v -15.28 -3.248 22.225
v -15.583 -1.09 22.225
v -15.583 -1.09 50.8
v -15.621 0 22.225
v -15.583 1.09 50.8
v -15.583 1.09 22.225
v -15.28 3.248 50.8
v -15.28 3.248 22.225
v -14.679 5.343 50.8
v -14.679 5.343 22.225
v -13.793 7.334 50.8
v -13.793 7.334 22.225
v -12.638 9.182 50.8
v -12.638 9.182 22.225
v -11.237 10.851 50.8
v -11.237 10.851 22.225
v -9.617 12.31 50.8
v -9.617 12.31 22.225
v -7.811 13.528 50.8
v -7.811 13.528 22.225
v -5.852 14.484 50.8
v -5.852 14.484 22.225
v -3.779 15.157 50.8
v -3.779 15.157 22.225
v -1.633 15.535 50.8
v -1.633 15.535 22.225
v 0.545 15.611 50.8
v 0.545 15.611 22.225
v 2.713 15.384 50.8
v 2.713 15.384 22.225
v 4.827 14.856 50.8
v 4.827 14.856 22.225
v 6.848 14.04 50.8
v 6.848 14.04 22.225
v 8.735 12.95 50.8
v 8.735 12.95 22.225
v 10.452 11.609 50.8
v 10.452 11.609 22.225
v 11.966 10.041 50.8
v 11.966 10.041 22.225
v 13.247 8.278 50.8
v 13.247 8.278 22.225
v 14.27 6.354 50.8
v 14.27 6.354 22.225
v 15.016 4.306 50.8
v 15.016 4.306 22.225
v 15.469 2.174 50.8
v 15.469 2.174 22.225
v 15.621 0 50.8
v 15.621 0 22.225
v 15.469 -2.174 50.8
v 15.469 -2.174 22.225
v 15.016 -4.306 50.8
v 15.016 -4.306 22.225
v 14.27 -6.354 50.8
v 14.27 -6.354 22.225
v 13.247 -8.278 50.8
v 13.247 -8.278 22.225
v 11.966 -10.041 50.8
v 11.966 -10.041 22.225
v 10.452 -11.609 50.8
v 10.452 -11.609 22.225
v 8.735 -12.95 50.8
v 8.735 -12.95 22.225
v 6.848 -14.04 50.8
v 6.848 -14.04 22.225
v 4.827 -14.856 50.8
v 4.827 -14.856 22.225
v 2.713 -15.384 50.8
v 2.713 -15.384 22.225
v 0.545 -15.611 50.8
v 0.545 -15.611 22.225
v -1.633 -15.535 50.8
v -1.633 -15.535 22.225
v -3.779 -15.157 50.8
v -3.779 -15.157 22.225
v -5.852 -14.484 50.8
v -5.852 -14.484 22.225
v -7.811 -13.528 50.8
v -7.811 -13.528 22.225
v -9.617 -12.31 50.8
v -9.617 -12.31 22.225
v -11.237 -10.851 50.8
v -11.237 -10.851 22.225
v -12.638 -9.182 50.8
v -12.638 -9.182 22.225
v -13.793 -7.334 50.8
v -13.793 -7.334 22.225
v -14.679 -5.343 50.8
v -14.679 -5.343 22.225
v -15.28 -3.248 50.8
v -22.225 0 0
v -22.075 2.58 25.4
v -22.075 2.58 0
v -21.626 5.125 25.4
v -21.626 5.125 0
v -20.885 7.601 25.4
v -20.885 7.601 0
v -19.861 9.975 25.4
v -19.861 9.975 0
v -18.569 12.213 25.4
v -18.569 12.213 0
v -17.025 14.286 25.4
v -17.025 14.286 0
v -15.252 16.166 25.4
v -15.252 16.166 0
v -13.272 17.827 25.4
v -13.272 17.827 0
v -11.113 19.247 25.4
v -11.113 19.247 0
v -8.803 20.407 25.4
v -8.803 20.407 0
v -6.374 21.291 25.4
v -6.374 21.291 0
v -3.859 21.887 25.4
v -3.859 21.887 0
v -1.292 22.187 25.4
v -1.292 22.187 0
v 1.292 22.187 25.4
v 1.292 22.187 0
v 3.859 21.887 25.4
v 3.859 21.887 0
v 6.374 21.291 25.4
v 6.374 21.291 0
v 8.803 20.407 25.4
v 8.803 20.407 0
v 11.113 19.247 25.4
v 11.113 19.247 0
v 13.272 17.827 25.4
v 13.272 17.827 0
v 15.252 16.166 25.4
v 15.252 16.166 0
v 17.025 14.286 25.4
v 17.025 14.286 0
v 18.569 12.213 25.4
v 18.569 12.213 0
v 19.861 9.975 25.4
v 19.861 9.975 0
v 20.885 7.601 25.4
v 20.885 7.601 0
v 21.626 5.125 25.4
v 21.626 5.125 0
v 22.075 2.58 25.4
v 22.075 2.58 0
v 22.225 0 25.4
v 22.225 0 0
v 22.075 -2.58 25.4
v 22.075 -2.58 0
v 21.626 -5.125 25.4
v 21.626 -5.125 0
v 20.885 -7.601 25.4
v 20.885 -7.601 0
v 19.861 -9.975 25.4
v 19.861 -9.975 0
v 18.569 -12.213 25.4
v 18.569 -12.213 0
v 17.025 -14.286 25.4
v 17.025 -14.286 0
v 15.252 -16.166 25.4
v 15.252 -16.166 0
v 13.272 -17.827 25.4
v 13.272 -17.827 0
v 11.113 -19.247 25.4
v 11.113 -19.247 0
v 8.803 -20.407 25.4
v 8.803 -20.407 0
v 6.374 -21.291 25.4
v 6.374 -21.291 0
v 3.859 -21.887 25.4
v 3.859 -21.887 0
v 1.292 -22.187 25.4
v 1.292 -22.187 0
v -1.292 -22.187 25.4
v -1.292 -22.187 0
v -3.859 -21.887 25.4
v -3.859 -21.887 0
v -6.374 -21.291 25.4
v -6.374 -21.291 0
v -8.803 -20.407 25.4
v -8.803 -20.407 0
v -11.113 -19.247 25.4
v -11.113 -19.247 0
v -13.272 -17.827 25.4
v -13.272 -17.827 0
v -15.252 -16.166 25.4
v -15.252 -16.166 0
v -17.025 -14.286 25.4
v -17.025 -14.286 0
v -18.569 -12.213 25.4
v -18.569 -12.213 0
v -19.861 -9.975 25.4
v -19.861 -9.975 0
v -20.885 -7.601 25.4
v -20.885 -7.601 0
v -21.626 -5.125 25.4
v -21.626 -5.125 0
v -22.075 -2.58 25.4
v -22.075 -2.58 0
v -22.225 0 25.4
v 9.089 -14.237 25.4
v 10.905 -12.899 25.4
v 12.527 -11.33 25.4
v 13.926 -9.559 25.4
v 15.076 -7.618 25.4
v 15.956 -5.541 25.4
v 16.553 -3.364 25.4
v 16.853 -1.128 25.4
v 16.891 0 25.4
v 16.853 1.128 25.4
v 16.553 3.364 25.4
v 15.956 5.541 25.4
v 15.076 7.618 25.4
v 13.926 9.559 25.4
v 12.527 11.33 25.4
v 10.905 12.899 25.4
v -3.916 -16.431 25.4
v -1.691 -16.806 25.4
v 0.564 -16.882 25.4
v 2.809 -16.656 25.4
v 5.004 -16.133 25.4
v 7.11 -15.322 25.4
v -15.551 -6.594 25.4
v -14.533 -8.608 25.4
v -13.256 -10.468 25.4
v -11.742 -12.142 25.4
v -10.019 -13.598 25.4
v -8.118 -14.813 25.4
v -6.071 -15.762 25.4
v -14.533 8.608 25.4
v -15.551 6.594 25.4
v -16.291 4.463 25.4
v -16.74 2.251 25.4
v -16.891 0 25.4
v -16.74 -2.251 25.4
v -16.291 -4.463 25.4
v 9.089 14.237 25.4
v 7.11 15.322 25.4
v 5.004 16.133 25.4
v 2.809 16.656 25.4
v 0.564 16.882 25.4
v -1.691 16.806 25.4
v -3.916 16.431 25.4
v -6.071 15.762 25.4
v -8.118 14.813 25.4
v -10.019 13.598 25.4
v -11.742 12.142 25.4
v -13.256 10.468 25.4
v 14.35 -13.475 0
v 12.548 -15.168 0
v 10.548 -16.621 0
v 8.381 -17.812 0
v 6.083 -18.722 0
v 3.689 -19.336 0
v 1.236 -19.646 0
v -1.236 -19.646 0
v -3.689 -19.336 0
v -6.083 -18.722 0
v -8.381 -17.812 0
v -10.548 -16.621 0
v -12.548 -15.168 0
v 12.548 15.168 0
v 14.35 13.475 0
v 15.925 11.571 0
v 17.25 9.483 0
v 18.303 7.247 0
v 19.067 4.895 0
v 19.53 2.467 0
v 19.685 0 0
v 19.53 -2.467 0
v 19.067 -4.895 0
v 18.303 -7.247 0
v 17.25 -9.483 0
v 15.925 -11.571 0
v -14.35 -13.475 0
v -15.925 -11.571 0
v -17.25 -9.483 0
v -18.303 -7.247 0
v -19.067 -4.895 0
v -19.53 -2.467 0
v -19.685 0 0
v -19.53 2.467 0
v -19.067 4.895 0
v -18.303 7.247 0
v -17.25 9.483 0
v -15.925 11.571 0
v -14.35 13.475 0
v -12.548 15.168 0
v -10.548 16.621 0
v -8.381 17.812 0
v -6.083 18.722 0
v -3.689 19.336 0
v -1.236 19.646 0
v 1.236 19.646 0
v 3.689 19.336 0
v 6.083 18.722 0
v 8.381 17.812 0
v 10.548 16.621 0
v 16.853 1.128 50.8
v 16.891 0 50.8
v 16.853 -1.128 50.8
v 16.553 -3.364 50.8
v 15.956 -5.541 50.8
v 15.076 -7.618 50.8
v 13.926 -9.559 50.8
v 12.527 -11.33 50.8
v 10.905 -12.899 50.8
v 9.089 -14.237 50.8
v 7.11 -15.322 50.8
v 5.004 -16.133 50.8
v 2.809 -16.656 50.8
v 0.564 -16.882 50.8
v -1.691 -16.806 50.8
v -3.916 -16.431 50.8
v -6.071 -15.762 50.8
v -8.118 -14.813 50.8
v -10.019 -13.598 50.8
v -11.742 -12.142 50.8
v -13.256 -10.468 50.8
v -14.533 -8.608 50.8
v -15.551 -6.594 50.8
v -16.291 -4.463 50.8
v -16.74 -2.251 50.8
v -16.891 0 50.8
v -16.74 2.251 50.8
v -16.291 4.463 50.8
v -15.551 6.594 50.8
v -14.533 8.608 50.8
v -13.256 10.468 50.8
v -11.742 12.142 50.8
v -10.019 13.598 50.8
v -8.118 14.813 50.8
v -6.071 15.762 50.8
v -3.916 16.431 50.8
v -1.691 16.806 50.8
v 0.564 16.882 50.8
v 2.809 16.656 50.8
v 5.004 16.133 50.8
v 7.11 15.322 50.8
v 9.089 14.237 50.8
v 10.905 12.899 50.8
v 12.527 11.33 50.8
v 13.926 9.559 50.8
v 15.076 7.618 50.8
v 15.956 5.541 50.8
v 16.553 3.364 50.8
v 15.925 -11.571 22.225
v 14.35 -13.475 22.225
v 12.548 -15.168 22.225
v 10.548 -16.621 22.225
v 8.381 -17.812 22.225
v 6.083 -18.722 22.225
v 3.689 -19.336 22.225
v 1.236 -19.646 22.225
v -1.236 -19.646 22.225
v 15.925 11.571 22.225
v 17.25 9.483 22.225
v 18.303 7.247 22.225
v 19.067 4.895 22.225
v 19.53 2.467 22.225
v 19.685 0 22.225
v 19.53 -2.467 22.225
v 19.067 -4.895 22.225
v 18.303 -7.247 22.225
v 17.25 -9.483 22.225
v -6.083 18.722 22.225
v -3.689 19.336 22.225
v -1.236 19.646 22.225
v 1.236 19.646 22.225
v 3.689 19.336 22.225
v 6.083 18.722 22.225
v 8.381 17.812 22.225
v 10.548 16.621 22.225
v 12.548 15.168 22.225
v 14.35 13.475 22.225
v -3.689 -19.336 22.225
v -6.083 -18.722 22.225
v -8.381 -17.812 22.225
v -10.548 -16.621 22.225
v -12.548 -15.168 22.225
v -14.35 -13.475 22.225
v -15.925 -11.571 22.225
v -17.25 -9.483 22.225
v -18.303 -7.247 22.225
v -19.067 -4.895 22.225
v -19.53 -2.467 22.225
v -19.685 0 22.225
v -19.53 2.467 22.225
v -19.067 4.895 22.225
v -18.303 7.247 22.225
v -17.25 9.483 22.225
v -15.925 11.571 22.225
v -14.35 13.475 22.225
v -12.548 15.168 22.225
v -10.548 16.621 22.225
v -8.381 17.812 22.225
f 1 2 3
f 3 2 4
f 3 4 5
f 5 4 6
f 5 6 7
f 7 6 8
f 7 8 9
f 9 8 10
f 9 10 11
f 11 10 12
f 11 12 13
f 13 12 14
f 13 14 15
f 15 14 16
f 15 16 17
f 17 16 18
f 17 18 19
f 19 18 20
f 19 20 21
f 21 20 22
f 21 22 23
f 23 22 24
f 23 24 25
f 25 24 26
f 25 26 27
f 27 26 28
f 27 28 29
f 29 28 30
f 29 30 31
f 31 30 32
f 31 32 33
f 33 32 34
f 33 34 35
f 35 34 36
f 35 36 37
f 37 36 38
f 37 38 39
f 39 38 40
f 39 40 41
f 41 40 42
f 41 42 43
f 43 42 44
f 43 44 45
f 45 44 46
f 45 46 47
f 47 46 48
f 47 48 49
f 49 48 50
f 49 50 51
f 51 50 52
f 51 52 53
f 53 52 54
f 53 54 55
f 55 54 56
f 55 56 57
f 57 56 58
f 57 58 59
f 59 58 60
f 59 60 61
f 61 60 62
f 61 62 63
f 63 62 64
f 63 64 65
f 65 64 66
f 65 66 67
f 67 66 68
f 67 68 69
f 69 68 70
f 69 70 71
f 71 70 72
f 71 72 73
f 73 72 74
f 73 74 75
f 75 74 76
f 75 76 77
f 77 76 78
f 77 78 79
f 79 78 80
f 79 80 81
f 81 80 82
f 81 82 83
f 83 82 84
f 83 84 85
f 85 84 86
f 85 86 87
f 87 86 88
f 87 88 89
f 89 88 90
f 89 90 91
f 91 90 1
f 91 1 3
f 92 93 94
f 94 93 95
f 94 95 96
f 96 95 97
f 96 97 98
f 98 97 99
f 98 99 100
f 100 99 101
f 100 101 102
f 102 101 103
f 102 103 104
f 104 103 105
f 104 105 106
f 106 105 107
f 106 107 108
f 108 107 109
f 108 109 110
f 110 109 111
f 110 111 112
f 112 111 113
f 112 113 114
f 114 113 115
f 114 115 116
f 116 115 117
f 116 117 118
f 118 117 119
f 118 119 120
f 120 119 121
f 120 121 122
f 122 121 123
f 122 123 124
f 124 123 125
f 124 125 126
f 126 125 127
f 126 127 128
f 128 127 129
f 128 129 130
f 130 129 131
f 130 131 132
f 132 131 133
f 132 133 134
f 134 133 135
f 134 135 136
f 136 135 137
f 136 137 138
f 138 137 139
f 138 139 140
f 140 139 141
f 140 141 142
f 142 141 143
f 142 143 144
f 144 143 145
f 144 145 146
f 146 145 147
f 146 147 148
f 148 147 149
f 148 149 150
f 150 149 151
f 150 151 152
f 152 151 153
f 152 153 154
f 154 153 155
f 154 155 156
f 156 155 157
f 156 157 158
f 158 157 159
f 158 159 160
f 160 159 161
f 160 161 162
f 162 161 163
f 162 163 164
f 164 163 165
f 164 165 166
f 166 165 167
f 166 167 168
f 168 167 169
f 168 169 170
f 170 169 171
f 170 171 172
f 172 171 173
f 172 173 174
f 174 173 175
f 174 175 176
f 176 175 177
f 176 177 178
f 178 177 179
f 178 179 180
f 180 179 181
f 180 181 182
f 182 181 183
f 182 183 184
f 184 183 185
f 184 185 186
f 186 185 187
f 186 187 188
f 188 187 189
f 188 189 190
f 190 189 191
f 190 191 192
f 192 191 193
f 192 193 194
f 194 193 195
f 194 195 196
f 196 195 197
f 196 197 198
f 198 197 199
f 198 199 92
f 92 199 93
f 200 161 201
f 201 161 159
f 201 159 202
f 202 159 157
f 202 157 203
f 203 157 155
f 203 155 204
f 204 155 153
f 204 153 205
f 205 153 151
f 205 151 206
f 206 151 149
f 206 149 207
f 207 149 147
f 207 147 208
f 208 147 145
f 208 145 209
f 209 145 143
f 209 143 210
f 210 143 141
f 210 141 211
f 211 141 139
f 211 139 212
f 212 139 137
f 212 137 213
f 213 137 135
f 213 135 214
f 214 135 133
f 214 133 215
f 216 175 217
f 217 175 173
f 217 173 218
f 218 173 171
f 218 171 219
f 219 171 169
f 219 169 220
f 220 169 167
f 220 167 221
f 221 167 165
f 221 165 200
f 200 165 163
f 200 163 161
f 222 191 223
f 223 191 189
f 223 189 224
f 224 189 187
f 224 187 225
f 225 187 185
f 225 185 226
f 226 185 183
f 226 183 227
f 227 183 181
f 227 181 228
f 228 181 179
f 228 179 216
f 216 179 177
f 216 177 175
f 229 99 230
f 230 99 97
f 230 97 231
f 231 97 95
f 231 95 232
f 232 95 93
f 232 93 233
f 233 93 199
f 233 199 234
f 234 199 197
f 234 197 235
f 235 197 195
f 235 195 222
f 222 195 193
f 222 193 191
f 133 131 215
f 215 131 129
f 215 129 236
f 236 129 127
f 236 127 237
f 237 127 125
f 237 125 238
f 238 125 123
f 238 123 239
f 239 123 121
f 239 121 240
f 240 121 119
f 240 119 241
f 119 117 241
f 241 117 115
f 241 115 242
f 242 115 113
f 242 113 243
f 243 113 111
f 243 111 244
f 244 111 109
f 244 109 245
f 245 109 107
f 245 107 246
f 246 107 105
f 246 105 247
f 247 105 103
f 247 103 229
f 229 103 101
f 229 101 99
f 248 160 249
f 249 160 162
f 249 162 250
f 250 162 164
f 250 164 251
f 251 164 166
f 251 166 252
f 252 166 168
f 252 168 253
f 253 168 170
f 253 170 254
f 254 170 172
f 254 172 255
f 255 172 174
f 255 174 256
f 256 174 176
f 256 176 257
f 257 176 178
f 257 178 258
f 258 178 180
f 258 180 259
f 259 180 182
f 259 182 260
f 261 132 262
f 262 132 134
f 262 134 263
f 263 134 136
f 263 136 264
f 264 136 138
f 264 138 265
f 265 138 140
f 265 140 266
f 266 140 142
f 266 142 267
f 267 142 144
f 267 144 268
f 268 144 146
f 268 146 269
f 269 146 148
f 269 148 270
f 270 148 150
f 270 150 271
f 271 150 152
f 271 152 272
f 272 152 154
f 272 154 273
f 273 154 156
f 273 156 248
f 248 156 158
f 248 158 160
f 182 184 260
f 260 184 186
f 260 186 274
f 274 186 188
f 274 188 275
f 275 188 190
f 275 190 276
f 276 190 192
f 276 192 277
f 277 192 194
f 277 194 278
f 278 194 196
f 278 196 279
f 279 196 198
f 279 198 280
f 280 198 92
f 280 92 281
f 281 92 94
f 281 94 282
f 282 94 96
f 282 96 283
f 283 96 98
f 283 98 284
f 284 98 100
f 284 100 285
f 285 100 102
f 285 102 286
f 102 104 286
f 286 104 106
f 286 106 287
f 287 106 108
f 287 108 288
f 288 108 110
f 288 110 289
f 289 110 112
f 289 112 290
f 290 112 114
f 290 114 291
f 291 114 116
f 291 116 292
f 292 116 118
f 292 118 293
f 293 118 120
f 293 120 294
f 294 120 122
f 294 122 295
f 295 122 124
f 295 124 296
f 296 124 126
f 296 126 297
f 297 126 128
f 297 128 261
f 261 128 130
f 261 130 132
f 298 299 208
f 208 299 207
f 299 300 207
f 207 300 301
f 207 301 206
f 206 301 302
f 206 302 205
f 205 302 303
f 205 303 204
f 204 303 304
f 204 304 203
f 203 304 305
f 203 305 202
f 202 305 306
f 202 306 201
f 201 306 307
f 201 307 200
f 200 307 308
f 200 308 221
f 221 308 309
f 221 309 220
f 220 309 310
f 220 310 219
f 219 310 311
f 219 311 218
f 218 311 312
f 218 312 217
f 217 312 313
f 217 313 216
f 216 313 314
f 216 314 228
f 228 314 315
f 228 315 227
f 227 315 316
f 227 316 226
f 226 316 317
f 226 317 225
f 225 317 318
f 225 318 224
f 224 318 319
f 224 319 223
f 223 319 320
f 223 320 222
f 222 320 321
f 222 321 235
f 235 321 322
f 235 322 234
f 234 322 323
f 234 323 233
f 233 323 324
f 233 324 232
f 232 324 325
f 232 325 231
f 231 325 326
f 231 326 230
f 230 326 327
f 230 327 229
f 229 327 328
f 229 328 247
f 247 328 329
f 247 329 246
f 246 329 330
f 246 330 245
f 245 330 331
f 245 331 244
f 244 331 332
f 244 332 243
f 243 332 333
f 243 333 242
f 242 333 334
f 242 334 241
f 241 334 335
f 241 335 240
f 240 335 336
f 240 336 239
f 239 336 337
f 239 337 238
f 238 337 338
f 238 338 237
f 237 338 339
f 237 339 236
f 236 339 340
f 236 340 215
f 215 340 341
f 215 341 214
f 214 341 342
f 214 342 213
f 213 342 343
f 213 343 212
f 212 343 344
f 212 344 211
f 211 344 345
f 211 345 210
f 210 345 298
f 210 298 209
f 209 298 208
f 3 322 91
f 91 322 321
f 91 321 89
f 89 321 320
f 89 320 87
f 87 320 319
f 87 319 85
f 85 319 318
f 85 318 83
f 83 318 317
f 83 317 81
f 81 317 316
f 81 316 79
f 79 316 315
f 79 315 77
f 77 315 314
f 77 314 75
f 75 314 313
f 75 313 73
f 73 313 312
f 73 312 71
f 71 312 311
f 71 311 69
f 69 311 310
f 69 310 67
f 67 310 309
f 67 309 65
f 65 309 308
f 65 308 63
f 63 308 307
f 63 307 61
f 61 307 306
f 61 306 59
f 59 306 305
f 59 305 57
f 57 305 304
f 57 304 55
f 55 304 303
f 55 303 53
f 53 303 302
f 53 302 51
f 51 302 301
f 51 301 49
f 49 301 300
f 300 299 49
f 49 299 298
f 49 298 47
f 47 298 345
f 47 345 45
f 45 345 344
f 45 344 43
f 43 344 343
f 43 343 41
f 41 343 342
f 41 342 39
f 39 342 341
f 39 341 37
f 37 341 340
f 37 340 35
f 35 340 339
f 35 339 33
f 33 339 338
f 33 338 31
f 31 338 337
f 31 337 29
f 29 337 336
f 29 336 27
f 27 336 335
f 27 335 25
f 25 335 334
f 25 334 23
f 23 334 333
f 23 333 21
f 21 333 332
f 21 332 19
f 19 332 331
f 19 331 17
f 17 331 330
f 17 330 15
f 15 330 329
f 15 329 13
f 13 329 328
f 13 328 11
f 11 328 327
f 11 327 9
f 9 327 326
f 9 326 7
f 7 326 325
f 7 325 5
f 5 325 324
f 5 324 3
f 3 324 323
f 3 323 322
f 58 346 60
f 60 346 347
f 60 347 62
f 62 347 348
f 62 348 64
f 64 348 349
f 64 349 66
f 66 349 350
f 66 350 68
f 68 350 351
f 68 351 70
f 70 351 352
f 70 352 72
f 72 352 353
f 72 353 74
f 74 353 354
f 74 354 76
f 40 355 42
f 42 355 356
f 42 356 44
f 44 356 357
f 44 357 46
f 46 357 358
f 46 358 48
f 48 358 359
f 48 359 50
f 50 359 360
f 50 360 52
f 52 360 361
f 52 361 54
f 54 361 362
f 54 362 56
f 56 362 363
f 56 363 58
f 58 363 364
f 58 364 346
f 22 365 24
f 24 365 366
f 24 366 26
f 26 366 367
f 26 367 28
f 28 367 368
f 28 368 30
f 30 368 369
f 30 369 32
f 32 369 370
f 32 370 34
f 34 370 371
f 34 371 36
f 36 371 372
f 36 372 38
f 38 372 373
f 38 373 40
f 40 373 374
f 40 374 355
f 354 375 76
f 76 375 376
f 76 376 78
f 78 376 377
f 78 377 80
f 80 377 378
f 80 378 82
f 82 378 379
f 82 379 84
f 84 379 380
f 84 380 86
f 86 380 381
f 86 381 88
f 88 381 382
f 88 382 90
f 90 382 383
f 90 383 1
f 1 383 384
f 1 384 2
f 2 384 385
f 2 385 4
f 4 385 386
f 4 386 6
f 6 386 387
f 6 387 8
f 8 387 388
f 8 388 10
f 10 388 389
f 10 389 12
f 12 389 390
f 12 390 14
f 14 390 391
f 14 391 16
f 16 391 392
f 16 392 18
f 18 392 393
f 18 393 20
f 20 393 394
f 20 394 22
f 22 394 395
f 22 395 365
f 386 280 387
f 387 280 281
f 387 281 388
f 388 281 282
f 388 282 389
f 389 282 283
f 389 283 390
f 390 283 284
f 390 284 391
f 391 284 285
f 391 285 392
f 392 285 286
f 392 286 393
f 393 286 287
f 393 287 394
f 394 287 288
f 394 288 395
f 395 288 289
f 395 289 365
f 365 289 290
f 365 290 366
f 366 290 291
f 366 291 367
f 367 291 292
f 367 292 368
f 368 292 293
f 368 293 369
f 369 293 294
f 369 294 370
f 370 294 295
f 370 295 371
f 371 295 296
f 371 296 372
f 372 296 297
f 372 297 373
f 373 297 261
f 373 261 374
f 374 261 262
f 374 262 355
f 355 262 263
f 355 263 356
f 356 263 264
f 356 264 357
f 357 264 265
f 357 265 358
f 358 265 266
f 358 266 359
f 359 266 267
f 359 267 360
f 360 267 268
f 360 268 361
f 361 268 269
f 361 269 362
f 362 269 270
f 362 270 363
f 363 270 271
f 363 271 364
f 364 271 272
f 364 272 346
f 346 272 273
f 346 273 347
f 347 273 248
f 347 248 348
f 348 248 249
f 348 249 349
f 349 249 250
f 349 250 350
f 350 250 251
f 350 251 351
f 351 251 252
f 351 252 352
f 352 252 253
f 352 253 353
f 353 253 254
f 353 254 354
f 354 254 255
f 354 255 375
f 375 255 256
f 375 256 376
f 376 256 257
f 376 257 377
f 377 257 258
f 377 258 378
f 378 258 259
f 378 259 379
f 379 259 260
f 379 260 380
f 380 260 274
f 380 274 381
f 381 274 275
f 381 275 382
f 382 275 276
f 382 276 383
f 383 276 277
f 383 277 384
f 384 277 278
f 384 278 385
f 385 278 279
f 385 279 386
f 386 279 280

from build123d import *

# Parameters (mm, degrees)
SKETCH1_R           = 22.225
BOSS_EXTRUDE1_DEPTH = 25.4
SKETCH2_R           = 16.891
BOSS_EXTRUDE2_DEPTH = 25.4
SKETCH3_R           = 15.621
CUT_EXTRUDE1_DEPTH  = 50.8
SKETCH4_R           = 19.685
CUT_EXTRUDE2_DEPTH  = 22.225


with BuildPart() as part:
    # Sketch1 → Boss-Extrude1 (new body)
    with BuildSketch(Plane.XY):
        Circle(SKETCH1_R)
    extrude(amount=BOSS_EXTRUDE1_DEPTH)

    # Sketch2 → Boss-Extrude2 (add)
    with BuildSketch(Plane.XY.offset(25.4)):
        Circle(SKETCH2_R)
    extrude(amount=BOSS_EXTRUDE2_DEPTH)

    # Sketch3 → Cut-Extrude1 (cut)
    with BuildSketch(Plane.XY.offset(50.8)):
        Circle(SKETCH3_R)
    extrude(amount=-CUT_EXTRUDE1_DEPTH, mode=Mode.SUBTRACT)

    # Sketch4 → Cut-Extrude2 (cut)
    with BuildSketch(Plane(origin=(0, 0, 0), x_dir=(-1, 0, 0), z_dir=(0, 0, -1))):
        Circle(SKETCH4_R)
    extrude(amount=-CUT_EXTRUDE2_DEPTH, mode=Mode.SUBTRACT)


solid = part.part
